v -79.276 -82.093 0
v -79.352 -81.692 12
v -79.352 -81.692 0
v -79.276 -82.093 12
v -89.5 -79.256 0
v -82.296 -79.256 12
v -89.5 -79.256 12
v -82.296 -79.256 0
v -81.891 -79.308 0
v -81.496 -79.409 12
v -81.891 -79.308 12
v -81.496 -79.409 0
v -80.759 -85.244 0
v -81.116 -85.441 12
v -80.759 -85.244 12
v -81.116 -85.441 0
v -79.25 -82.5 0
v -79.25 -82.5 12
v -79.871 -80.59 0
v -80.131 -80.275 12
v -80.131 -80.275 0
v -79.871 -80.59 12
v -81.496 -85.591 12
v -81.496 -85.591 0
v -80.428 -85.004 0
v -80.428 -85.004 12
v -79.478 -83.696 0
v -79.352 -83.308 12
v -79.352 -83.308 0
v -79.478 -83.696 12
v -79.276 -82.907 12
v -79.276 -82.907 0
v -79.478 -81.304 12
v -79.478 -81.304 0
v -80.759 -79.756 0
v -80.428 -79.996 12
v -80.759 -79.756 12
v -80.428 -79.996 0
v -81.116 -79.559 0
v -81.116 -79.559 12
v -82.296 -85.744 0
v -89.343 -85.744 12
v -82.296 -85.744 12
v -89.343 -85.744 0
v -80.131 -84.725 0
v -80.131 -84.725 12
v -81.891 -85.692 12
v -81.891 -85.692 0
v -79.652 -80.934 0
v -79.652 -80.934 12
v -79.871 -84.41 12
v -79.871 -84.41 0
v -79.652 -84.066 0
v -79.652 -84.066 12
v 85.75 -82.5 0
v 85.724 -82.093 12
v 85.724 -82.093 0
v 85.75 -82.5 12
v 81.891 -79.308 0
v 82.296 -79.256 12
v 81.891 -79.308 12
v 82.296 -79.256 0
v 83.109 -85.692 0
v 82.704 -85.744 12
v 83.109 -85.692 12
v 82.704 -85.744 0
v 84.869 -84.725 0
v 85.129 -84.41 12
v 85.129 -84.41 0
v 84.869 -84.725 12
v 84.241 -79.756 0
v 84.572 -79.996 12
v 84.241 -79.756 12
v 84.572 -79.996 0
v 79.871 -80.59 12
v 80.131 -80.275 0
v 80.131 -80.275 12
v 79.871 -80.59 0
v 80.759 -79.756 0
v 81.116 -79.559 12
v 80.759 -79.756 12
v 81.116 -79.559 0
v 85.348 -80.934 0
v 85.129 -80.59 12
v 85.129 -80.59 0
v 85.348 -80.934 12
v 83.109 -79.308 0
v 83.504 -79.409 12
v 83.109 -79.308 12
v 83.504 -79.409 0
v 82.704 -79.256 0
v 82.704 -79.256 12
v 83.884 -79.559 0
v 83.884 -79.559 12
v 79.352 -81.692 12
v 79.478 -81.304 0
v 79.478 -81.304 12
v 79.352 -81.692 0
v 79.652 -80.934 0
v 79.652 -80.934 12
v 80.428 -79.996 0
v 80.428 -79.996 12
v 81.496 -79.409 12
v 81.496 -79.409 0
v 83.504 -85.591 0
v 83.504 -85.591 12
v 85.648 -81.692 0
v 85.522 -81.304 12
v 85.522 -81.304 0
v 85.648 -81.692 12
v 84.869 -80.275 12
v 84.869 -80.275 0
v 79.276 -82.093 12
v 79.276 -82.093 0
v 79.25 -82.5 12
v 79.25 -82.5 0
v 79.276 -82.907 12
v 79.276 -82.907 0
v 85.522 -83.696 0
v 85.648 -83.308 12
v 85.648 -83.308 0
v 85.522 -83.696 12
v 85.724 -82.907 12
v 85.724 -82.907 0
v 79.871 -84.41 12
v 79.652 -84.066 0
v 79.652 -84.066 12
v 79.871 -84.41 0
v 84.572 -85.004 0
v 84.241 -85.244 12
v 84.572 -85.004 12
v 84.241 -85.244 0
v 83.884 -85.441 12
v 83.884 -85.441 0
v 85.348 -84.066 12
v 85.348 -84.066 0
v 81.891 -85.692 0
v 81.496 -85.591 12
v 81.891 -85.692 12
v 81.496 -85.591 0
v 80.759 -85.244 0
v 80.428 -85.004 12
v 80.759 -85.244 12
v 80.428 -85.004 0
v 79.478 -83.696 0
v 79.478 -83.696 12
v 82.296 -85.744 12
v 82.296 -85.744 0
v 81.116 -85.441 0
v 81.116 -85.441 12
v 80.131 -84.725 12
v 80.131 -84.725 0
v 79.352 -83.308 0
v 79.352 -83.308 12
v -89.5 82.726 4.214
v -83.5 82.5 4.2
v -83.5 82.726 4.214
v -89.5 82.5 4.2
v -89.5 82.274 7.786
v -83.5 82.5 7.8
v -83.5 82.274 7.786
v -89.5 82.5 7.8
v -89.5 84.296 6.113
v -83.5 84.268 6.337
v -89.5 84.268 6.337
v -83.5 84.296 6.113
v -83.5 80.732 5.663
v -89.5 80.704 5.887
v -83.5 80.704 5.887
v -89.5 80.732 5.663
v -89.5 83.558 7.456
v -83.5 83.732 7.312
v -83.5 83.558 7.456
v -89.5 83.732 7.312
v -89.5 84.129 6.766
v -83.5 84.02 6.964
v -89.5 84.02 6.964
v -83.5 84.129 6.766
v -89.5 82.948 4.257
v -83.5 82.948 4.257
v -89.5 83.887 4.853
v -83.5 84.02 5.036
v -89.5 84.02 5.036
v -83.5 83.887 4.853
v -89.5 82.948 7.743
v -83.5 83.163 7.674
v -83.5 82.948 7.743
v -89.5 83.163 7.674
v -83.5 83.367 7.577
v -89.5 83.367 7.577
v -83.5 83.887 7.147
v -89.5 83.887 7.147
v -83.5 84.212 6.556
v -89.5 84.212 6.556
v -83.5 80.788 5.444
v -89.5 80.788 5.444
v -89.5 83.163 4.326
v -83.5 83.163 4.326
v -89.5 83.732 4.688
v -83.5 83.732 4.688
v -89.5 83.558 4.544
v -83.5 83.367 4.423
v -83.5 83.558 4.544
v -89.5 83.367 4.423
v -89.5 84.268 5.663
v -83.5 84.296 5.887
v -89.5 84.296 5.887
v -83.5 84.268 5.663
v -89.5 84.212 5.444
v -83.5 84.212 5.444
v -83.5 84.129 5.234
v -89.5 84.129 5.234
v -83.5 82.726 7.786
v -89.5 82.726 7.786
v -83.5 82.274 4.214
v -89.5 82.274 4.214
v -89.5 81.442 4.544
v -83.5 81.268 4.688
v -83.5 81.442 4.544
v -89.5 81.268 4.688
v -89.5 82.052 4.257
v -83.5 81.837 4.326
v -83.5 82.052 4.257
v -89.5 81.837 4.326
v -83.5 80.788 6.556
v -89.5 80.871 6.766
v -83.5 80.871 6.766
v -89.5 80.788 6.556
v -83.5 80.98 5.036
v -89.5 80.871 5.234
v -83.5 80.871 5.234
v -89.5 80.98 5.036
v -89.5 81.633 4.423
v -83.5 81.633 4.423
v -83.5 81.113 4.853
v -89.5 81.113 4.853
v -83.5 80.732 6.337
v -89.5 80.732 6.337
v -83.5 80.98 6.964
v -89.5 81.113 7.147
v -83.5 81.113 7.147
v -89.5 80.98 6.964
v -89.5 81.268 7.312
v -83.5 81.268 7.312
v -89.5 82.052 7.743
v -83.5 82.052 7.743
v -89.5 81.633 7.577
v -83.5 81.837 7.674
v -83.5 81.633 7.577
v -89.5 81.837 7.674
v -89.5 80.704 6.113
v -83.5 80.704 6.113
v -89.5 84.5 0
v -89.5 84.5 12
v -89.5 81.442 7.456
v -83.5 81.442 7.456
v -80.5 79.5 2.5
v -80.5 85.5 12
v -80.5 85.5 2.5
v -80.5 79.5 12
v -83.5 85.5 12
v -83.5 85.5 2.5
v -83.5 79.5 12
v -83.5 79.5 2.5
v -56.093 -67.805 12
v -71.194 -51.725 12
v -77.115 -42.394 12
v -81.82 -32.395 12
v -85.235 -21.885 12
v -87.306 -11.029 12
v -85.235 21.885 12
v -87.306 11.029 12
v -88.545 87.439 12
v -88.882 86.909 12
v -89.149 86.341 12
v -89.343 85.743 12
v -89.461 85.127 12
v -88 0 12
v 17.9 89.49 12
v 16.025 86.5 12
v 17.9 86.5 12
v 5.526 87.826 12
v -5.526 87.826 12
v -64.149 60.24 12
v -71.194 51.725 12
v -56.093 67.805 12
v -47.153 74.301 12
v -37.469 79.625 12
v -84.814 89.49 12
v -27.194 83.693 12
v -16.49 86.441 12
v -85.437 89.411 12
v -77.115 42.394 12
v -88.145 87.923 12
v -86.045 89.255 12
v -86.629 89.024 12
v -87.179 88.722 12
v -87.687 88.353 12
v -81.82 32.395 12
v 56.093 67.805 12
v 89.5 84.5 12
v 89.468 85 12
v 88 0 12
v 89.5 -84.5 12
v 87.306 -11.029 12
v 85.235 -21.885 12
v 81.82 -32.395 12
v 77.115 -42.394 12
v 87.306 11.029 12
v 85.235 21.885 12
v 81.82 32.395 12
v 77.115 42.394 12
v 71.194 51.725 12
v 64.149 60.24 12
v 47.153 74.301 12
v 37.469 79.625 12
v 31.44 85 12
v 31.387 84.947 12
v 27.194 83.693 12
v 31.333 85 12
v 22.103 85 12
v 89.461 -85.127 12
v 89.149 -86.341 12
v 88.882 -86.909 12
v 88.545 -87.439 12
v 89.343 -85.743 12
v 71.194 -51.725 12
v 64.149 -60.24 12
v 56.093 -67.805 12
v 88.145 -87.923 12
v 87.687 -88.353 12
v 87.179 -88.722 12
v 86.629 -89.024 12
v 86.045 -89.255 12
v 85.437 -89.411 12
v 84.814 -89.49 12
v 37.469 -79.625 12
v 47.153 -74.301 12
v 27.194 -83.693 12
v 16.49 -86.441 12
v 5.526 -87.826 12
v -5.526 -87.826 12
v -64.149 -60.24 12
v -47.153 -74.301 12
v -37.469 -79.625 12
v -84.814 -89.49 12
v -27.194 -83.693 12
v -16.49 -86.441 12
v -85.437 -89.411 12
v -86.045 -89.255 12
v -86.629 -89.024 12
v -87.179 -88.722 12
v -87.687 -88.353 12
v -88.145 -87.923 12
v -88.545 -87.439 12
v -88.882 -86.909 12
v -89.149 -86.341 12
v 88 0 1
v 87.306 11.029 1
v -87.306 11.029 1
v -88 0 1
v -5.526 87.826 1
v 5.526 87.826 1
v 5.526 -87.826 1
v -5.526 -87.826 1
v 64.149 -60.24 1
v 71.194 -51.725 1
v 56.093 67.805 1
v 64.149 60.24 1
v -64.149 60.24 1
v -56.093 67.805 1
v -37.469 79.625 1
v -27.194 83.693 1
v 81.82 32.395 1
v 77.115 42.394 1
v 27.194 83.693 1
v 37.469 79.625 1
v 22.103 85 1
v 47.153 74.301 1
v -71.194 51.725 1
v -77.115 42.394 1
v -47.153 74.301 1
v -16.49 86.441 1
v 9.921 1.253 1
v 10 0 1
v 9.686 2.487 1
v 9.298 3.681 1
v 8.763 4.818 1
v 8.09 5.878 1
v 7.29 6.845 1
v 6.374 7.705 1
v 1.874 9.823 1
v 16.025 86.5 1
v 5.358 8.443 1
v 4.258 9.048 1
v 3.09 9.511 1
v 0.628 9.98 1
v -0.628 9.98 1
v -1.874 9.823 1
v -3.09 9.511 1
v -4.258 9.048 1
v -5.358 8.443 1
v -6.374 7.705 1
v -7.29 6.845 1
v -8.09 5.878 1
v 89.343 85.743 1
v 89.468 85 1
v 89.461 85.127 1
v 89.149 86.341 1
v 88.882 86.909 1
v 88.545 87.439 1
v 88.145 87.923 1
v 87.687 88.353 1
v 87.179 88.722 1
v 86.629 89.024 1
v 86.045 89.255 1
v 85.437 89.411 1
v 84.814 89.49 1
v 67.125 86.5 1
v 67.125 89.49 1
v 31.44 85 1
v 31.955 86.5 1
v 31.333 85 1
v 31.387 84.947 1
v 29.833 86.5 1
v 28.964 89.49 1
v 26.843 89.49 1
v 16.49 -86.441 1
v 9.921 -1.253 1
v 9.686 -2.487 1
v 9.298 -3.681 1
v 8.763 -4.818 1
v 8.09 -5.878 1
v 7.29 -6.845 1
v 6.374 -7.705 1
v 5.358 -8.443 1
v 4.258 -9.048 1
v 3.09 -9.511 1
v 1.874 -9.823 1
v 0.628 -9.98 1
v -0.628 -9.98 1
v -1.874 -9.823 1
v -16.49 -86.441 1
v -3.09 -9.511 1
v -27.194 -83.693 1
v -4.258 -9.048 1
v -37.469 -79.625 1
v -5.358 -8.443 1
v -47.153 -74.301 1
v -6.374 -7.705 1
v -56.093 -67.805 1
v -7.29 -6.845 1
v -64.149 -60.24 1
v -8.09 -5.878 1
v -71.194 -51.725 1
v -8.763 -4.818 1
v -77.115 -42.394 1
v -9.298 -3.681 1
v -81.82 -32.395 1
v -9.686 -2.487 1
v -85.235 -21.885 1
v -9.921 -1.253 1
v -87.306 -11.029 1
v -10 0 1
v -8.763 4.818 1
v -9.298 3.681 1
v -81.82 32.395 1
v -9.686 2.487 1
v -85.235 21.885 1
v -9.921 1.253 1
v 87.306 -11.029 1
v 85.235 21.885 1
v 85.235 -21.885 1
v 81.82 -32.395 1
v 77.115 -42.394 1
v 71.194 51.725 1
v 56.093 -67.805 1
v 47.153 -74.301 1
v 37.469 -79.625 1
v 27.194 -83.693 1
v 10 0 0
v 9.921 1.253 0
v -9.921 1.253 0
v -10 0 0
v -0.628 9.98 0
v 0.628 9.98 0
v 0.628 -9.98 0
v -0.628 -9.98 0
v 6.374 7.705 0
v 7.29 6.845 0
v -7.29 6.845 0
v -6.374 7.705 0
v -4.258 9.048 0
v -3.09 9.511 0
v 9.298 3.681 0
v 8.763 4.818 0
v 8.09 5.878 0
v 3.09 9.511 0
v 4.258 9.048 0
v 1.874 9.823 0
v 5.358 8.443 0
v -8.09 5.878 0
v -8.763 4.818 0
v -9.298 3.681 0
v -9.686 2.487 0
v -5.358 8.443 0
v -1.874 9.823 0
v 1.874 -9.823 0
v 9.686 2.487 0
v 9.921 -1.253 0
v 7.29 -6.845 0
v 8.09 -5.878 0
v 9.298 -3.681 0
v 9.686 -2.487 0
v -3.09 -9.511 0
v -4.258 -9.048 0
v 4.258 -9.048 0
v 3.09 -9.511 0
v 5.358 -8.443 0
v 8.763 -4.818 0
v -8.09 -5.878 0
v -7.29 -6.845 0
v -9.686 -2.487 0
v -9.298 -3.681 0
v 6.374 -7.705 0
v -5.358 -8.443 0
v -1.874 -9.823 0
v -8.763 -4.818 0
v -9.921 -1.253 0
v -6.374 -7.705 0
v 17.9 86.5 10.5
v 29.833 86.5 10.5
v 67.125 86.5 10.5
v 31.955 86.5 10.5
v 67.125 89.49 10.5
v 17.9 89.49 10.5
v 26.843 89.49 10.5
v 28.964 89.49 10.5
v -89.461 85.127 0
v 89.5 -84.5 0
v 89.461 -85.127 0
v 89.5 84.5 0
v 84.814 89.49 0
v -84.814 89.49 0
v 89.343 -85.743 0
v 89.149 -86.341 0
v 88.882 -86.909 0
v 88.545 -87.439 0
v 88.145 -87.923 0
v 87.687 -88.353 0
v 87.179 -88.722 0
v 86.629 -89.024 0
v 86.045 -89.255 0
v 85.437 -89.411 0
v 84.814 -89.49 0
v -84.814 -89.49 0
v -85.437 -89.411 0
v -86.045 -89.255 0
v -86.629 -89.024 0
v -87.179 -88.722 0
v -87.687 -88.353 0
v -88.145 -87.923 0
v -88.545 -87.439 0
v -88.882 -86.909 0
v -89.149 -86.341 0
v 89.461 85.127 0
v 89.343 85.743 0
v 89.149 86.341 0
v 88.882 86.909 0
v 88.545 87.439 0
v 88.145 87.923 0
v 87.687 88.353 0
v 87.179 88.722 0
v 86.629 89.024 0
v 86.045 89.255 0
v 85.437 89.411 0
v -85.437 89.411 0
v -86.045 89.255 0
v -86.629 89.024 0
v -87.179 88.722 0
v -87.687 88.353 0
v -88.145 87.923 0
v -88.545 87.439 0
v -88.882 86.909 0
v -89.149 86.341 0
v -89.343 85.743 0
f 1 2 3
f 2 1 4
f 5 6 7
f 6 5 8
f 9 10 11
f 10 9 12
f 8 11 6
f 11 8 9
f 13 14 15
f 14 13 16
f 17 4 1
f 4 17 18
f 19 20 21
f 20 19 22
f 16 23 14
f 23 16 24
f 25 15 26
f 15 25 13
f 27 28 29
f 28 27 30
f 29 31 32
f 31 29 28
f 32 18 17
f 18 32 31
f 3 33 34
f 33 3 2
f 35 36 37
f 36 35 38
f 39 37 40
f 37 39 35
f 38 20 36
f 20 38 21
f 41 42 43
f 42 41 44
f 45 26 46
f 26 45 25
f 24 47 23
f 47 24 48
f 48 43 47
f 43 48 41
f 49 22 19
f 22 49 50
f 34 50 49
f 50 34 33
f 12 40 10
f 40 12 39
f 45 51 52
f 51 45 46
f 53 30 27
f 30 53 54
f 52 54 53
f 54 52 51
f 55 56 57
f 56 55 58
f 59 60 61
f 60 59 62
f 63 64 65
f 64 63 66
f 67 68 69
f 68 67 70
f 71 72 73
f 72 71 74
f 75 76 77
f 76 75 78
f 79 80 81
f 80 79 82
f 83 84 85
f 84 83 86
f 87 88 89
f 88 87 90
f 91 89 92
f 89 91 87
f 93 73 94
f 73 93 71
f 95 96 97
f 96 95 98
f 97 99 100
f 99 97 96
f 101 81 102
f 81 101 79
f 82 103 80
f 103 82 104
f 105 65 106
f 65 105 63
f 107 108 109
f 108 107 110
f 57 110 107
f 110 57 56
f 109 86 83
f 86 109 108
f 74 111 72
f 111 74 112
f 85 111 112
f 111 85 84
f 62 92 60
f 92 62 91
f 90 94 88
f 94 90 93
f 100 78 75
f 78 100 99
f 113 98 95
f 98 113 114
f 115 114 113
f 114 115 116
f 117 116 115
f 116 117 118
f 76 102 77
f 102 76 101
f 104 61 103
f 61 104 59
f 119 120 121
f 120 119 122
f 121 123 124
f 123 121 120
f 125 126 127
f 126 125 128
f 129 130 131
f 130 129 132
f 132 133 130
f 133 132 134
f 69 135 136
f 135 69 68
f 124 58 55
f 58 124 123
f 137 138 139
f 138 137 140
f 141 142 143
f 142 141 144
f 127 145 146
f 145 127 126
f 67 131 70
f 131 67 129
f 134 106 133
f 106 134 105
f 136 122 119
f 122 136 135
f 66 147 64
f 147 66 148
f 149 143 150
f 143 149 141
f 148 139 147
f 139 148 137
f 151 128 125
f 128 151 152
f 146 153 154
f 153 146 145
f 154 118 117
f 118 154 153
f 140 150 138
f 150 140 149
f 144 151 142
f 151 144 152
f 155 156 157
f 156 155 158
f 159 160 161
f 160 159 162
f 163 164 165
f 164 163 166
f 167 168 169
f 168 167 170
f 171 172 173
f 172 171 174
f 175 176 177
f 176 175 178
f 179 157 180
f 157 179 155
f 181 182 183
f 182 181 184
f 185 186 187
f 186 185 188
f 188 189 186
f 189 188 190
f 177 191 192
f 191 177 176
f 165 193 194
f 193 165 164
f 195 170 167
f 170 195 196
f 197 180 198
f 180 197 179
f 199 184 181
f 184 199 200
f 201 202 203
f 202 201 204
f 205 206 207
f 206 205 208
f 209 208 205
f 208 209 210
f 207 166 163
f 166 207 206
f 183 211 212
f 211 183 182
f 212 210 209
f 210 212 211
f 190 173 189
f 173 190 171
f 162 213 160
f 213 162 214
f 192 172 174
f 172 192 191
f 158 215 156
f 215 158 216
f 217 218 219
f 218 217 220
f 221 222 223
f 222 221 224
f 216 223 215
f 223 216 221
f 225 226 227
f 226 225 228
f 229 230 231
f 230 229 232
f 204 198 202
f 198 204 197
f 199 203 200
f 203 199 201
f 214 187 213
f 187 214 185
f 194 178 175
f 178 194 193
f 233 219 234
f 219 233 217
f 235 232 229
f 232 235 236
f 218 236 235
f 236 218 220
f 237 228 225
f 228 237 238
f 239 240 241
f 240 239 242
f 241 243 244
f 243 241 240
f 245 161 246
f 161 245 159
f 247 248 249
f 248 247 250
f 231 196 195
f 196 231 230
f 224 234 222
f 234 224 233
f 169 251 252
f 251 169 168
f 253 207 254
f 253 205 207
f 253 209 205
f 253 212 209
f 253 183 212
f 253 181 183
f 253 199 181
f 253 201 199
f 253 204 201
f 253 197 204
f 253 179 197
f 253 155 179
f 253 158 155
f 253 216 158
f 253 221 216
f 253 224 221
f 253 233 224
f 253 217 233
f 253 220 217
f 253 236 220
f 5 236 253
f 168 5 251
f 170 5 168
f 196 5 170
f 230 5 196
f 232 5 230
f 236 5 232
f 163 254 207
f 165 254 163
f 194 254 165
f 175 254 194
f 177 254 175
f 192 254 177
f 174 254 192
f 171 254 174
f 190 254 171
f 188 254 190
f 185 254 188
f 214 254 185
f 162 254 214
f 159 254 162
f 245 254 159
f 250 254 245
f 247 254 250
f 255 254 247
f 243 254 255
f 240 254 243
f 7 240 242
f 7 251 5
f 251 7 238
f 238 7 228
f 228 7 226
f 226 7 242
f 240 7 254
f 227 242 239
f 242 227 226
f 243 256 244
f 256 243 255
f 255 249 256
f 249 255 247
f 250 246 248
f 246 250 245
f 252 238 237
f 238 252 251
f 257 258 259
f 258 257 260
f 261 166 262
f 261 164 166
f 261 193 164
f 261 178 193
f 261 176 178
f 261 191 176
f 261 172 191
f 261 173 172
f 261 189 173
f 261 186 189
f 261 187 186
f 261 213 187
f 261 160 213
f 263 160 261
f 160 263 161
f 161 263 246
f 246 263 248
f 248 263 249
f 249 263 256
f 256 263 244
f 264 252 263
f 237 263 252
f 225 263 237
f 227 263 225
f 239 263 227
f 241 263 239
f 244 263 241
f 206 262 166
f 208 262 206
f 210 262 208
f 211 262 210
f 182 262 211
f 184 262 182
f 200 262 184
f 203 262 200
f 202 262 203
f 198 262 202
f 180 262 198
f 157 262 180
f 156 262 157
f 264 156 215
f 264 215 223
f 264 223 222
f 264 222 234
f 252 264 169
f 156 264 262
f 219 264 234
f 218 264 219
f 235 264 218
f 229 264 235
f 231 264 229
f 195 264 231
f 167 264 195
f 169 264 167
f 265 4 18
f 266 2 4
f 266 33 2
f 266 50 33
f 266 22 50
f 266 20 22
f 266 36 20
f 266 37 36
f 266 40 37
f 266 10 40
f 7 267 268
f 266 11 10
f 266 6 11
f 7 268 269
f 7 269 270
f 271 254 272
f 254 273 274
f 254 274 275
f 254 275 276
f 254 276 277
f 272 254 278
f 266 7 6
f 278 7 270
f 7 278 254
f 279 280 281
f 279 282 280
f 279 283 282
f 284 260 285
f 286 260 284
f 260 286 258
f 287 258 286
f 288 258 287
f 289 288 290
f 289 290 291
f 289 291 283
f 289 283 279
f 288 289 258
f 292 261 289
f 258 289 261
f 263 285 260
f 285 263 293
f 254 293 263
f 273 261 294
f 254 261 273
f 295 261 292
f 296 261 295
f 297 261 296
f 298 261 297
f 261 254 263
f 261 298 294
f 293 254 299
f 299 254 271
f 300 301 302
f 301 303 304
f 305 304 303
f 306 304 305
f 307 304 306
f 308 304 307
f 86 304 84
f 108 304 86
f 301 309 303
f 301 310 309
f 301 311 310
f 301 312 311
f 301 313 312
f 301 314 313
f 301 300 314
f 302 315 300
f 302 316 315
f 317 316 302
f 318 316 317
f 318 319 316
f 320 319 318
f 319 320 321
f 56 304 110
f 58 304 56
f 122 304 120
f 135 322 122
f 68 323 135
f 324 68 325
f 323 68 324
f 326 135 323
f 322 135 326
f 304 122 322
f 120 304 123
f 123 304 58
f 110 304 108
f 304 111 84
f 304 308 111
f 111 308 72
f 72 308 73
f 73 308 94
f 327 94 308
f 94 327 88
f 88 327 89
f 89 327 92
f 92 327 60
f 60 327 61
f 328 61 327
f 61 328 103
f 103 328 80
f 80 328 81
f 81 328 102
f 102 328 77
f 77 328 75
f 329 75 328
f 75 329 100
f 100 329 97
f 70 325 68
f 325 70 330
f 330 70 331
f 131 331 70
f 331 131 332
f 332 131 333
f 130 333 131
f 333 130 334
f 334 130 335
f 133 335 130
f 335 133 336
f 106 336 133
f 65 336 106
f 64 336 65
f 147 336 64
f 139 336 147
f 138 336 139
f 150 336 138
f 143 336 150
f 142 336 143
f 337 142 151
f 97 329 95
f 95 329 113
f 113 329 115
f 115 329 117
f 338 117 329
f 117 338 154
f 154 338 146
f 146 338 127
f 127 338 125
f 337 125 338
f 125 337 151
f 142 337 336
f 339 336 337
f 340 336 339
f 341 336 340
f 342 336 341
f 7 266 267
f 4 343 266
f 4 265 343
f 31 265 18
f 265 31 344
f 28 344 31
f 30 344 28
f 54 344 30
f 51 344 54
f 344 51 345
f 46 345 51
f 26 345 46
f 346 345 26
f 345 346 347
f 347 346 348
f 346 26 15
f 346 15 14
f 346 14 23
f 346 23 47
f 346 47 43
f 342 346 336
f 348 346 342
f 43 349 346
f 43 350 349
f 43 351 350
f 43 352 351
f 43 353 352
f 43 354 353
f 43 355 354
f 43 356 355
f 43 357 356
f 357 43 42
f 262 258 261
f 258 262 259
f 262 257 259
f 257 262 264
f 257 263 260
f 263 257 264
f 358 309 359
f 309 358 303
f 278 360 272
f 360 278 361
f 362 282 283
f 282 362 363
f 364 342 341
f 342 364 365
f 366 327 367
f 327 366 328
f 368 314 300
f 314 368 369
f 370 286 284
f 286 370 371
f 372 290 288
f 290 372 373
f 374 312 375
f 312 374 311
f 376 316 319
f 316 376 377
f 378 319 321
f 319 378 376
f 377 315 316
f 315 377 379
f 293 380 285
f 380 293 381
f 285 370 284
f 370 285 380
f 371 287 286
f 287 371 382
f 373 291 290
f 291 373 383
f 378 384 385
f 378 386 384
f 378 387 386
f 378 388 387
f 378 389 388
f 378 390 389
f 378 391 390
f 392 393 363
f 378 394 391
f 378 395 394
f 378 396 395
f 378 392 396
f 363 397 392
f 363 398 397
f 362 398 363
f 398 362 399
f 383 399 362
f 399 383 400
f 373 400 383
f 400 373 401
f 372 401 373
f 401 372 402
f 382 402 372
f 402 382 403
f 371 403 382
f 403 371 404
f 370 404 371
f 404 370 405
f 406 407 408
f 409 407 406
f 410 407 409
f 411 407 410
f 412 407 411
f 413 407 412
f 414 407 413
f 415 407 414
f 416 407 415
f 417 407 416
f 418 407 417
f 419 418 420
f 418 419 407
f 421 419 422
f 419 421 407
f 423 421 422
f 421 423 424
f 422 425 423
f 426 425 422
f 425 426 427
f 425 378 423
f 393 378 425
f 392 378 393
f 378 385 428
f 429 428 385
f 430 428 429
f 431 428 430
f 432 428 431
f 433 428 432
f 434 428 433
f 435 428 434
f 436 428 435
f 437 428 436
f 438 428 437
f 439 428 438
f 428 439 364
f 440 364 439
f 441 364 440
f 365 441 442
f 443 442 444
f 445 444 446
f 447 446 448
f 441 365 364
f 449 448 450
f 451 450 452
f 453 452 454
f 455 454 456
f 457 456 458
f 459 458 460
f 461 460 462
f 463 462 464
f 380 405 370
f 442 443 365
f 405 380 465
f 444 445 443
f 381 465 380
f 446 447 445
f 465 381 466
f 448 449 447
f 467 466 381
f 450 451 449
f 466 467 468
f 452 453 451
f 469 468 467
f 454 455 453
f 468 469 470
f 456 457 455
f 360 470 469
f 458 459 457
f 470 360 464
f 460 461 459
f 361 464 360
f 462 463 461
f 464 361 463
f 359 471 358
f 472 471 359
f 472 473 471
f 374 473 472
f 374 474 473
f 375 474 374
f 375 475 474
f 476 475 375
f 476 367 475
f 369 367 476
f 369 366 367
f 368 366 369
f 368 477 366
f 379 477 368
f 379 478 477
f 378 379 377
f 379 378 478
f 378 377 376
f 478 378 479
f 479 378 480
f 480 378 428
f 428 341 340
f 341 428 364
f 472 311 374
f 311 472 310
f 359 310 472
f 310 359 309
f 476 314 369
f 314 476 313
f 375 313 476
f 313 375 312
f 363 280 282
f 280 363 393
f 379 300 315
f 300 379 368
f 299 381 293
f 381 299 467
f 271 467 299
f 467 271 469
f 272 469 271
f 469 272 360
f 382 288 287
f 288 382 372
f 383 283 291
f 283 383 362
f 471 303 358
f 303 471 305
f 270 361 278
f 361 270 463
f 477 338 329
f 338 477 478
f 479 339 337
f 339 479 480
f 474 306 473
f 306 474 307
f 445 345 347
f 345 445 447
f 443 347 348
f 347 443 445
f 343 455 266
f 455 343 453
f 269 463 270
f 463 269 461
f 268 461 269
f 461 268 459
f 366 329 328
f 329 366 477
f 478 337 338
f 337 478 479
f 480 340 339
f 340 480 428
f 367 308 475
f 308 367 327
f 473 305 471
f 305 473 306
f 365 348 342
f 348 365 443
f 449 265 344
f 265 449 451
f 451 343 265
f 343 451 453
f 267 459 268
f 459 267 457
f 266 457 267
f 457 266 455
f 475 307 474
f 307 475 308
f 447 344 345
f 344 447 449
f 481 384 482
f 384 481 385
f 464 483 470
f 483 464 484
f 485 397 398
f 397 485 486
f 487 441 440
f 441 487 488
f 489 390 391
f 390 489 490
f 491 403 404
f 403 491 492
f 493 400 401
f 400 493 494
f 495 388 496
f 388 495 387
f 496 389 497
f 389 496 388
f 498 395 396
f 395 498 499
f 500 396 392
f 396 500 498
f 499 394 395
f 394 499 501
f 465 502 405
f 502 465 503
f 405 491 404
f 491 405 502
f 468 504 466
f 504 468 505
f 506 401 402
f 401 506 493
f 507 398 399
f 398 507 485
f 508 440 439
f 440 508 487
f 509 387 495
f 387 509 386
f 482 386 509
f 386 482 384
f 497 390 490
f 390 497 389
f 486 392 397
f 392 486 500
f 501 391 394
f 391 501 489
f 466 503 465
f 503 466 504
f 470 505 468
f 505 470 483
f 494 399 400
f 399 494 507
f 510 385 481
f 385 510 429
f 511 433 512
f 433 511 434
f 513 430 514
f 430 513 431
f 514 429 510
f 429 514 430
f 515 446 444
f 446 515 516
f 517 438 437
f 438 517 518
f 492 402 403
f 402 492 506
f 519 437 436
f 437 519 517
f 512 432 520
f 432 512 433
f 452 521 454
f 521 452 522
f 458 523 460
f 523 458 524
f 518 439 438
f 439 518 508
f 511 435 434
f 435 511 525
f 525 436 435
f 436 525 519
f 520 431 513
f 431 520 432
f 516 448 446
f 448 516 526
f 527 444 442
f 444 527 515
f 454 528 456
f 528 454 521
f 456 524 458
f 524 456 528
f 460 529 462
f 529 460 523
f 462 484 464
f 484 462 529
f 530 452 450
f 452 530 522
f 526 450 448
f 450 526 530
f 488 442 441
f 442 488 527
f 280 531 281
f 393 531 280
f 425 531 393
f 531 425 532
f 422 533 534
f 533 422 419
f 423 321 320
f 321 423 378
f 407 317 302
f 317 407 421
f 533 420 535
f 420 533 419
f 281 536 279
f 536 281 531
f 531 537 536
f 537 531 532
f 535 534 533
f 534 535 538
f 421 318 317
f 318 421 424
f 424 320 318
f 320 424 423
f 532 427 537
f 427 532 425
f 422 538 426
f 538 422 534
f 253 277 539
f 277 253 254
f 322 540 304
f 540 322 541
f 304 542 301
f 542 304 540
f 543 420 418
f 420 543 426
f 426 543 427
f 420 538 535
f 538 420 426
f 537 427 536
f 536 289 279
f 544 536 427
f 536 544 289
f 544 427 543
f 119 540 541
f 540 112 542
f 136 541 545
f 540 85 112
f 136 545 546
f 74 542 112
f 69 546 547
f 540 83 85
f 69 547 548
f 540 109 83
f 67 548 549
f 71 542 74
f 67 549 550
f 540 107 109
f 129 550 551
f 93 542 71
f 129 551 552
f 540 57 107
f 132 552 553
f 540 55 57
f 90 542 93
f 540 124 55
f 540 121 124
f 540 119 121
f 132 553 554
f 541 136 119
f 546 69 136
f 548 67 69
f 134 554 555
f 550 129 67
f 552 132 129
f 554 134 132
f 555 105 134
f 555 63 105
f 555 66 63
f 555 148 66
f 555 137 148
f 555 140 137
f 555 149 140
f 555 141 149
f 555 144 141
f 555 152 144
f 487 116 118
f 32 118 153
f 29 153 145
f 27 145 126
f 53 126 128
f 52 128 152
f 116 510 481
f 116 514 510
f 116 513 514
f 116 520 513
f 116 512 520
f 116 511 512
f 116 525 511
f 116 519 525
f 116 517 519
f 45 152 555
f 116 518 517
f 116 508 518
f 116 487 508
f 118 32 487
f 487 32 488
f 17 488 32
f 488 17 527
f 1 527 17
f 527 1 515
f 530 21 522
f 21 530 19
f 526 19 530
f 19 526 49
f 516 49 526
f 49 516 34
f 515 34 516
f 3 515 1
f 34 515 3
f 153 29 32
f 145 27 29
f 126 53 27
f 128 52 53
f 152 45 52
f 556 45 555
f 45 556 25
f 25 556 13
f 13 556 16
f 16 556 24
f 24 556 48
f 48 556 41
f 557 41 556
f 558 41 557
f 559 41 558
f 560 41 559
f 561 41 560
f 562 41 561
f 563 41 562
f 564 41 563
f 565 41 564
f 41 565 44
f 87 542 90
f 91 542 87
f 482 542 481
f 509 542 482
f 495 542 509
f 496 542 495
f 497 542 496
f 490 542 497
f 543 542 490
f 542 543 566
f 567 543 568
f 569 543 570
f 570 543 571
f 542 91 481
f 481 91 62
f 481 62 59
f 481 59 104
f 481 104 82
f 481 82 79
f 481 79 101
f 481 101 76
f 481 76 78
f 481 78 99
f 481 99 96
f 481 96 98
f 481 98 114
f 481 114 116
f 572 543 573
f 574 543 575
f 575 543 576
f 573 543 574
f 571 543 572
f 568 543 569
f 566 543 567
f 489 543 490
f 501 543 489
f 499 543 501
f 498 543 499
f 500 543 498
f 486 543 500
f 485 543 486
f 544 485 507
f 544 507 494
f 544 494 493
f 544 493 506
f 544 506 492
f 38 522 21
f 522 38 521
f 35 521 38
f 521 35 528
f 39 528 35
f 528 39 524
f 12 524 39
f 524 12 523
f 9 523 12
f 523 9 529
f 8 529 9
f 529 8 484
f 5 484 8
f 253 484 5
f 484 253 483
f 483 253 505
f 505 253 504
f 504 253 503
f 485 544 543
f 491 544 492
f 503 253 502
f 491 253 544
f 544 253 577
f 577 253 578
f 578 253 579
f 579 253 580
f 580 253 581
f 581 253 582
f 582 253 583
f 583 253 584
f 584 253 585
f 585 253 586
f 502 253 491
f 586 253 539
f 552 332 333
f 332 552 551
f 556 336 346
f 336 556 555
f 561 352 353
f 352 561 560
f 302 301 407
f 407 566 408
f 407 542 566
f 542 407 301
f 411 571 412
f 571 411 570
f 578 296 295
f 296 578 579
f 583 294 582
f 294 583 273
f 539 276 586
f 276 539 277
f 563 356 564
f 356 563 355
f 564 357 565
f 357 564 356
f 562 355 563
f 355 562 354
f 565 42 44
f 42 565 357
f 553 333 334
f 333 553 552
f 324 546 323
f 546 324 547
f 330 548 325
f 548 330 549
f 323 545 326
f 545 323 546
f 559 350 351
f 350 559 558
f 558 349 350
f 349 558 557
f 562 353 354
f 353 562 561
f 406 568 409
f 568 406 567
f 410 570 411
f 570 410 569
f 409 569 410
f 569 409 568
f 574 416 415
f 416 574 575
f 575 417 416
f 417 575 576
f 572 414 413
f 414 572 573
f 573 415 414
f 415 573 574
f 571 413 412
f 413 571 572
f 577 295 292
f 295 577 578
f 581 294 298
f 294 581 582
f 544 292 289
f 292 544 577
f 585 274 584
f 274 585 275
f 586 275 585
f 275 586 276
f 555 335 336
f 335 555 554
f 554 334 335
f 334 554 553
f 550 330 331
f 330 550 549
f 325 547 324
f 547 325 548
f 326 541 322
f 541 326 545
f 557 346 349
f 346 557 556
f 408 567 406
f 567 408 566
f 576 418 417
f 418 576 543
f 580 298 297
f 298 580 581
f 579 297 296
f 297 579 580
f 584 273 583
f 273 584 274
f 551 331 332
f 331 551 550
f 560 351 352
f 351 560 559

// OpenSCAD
$fn = 50;


difference() {
	union() {
		translate(v = [0, 0, 0]) {
			rotate(a = [0, 0, 0]) {
				hull() {
					translate(v = [-84.5000000000, 84.5000000000, 0]) {
						rotate(a = [0, 0, 0]) {
							translate(v = [0, 0, 0]) {
								rotate(a = [0, 0, 0]) {
									cylinder(h = 12, r = 5);
								}
							}
						}
					}
					translate(v = [84.5000000000, 84.5000000000, 0]) {
						rotate(a = [0, 0, 0]) {
							translate(v = [0, 0, 0]) {
								rotate(a = [0, 0, 0]) {
									cylinder(h = 12, r = 5);
								}
							}
						}
					}
					translate(v = [-84.5000000000, -84.5000000000, 0]) {
						rotate(a = [0, 0, 0]) {
							translate(v = [0, 0, 0]) {
								rotate(a = [0, 0, 0]) {
									cylinder(h = 12, r = 5);
								}
							}
						}
					}
					translate(v = [84.5000000000, -84.5000000000, 0]) {
						rotate(a = [0, 0, 0]) {
							translate(v = [0, 0, 0]) {
								rotate(a = [0, 0, 0]) {
									cylinder(h = 12, r = 5);
								}
							}
						}
					}
				}
			}
		}
	}
	union() {
		translate(v = [-90.0000000000, -82.5000000000, -125]) {
			rotate(a = [0, 0, 0]) {
				hull() {
					translate(v = [7.5000000000, 0, 0]) {
						rotate(a = [0, 0, 0]) {
							translate(v = [0, 0, 0]) {
								rotate(a = [0, 0, 0]) {
									cylinder(h = 250, r = 3.2500000000);
								}
							}
						}
					}
					translate(v = [-7.5000000000, 0, 0]) {
						rotate(a = [0, 0, 0]) {
							translate(v = [0, 0, 0]) {
								rotate(a = [0, 0, 0]) {
									cylinder(h = 250, r = 3.2500000000);
								}
							}
						}
					}
				}
			}
		}
		translate(v = [82.5000000000, -82.5000000000, -125.0000000000]) {
			rotate(a = [0, 0, 0]) {
				cylinder(h = 250, r = 3.2500000000);
			}
		}
		translate(v = [-89.5000000000, 82.5000000000, 6.0000000000]) {
			rotate(a = [0, 90, 0]) {
				cylinder(h = 9, r = 1.8000000000);
			}
		}
		translate(v = [-83.5000000000, 79.5000000000, 2.5000000000]) {
			rotate(a = [0, 0, 0]) {
				cube(size = [3, 6, 9.5000000000]);
			}
		}
		translate(v = [0, 0, 1.0000000000]) {
			rotate(a = [0, 0, 0]) {
				cylinder(h = 14, r = 88.0000000000);
			}
		}
		translate(v = [0, 0, -6.0000000000]) {
			rotate(a = [0, 0, 0]) {
				cylinder(h = 12, r = 10.0000000000);
			}
		}
		translate(v = [0.0000000000, 85.0000000000, 1]) {
			rotate(a = [0, 0, 0]) {
				cube(size = [89.5000000000, 1.5000000000, 14]);
			}
		}
		translate(v = [67.1250000000, 85.0000000000, 1]) {
			rotate(a = [0, 0, 0]) {
				cube(size = [22.3750000000, 4.5000000000, 14]);
			}
		}
		translate(v = [17.9000000000, 85.0000000000, 10.5000000000]) {
			rotate(a = [0, 0, 0]) {
				cube(size = [71.6000000000, 4.5000000000, 1.5000000000]);
			}
		}
		translate(v = [26.0833333333, 90.2500000000, 1]) {
			rotate(a = [0, 0, -45]) {
				cube(size = [7.5000000000, 1.5000000000, 14]);
			}
		}
	}
}
